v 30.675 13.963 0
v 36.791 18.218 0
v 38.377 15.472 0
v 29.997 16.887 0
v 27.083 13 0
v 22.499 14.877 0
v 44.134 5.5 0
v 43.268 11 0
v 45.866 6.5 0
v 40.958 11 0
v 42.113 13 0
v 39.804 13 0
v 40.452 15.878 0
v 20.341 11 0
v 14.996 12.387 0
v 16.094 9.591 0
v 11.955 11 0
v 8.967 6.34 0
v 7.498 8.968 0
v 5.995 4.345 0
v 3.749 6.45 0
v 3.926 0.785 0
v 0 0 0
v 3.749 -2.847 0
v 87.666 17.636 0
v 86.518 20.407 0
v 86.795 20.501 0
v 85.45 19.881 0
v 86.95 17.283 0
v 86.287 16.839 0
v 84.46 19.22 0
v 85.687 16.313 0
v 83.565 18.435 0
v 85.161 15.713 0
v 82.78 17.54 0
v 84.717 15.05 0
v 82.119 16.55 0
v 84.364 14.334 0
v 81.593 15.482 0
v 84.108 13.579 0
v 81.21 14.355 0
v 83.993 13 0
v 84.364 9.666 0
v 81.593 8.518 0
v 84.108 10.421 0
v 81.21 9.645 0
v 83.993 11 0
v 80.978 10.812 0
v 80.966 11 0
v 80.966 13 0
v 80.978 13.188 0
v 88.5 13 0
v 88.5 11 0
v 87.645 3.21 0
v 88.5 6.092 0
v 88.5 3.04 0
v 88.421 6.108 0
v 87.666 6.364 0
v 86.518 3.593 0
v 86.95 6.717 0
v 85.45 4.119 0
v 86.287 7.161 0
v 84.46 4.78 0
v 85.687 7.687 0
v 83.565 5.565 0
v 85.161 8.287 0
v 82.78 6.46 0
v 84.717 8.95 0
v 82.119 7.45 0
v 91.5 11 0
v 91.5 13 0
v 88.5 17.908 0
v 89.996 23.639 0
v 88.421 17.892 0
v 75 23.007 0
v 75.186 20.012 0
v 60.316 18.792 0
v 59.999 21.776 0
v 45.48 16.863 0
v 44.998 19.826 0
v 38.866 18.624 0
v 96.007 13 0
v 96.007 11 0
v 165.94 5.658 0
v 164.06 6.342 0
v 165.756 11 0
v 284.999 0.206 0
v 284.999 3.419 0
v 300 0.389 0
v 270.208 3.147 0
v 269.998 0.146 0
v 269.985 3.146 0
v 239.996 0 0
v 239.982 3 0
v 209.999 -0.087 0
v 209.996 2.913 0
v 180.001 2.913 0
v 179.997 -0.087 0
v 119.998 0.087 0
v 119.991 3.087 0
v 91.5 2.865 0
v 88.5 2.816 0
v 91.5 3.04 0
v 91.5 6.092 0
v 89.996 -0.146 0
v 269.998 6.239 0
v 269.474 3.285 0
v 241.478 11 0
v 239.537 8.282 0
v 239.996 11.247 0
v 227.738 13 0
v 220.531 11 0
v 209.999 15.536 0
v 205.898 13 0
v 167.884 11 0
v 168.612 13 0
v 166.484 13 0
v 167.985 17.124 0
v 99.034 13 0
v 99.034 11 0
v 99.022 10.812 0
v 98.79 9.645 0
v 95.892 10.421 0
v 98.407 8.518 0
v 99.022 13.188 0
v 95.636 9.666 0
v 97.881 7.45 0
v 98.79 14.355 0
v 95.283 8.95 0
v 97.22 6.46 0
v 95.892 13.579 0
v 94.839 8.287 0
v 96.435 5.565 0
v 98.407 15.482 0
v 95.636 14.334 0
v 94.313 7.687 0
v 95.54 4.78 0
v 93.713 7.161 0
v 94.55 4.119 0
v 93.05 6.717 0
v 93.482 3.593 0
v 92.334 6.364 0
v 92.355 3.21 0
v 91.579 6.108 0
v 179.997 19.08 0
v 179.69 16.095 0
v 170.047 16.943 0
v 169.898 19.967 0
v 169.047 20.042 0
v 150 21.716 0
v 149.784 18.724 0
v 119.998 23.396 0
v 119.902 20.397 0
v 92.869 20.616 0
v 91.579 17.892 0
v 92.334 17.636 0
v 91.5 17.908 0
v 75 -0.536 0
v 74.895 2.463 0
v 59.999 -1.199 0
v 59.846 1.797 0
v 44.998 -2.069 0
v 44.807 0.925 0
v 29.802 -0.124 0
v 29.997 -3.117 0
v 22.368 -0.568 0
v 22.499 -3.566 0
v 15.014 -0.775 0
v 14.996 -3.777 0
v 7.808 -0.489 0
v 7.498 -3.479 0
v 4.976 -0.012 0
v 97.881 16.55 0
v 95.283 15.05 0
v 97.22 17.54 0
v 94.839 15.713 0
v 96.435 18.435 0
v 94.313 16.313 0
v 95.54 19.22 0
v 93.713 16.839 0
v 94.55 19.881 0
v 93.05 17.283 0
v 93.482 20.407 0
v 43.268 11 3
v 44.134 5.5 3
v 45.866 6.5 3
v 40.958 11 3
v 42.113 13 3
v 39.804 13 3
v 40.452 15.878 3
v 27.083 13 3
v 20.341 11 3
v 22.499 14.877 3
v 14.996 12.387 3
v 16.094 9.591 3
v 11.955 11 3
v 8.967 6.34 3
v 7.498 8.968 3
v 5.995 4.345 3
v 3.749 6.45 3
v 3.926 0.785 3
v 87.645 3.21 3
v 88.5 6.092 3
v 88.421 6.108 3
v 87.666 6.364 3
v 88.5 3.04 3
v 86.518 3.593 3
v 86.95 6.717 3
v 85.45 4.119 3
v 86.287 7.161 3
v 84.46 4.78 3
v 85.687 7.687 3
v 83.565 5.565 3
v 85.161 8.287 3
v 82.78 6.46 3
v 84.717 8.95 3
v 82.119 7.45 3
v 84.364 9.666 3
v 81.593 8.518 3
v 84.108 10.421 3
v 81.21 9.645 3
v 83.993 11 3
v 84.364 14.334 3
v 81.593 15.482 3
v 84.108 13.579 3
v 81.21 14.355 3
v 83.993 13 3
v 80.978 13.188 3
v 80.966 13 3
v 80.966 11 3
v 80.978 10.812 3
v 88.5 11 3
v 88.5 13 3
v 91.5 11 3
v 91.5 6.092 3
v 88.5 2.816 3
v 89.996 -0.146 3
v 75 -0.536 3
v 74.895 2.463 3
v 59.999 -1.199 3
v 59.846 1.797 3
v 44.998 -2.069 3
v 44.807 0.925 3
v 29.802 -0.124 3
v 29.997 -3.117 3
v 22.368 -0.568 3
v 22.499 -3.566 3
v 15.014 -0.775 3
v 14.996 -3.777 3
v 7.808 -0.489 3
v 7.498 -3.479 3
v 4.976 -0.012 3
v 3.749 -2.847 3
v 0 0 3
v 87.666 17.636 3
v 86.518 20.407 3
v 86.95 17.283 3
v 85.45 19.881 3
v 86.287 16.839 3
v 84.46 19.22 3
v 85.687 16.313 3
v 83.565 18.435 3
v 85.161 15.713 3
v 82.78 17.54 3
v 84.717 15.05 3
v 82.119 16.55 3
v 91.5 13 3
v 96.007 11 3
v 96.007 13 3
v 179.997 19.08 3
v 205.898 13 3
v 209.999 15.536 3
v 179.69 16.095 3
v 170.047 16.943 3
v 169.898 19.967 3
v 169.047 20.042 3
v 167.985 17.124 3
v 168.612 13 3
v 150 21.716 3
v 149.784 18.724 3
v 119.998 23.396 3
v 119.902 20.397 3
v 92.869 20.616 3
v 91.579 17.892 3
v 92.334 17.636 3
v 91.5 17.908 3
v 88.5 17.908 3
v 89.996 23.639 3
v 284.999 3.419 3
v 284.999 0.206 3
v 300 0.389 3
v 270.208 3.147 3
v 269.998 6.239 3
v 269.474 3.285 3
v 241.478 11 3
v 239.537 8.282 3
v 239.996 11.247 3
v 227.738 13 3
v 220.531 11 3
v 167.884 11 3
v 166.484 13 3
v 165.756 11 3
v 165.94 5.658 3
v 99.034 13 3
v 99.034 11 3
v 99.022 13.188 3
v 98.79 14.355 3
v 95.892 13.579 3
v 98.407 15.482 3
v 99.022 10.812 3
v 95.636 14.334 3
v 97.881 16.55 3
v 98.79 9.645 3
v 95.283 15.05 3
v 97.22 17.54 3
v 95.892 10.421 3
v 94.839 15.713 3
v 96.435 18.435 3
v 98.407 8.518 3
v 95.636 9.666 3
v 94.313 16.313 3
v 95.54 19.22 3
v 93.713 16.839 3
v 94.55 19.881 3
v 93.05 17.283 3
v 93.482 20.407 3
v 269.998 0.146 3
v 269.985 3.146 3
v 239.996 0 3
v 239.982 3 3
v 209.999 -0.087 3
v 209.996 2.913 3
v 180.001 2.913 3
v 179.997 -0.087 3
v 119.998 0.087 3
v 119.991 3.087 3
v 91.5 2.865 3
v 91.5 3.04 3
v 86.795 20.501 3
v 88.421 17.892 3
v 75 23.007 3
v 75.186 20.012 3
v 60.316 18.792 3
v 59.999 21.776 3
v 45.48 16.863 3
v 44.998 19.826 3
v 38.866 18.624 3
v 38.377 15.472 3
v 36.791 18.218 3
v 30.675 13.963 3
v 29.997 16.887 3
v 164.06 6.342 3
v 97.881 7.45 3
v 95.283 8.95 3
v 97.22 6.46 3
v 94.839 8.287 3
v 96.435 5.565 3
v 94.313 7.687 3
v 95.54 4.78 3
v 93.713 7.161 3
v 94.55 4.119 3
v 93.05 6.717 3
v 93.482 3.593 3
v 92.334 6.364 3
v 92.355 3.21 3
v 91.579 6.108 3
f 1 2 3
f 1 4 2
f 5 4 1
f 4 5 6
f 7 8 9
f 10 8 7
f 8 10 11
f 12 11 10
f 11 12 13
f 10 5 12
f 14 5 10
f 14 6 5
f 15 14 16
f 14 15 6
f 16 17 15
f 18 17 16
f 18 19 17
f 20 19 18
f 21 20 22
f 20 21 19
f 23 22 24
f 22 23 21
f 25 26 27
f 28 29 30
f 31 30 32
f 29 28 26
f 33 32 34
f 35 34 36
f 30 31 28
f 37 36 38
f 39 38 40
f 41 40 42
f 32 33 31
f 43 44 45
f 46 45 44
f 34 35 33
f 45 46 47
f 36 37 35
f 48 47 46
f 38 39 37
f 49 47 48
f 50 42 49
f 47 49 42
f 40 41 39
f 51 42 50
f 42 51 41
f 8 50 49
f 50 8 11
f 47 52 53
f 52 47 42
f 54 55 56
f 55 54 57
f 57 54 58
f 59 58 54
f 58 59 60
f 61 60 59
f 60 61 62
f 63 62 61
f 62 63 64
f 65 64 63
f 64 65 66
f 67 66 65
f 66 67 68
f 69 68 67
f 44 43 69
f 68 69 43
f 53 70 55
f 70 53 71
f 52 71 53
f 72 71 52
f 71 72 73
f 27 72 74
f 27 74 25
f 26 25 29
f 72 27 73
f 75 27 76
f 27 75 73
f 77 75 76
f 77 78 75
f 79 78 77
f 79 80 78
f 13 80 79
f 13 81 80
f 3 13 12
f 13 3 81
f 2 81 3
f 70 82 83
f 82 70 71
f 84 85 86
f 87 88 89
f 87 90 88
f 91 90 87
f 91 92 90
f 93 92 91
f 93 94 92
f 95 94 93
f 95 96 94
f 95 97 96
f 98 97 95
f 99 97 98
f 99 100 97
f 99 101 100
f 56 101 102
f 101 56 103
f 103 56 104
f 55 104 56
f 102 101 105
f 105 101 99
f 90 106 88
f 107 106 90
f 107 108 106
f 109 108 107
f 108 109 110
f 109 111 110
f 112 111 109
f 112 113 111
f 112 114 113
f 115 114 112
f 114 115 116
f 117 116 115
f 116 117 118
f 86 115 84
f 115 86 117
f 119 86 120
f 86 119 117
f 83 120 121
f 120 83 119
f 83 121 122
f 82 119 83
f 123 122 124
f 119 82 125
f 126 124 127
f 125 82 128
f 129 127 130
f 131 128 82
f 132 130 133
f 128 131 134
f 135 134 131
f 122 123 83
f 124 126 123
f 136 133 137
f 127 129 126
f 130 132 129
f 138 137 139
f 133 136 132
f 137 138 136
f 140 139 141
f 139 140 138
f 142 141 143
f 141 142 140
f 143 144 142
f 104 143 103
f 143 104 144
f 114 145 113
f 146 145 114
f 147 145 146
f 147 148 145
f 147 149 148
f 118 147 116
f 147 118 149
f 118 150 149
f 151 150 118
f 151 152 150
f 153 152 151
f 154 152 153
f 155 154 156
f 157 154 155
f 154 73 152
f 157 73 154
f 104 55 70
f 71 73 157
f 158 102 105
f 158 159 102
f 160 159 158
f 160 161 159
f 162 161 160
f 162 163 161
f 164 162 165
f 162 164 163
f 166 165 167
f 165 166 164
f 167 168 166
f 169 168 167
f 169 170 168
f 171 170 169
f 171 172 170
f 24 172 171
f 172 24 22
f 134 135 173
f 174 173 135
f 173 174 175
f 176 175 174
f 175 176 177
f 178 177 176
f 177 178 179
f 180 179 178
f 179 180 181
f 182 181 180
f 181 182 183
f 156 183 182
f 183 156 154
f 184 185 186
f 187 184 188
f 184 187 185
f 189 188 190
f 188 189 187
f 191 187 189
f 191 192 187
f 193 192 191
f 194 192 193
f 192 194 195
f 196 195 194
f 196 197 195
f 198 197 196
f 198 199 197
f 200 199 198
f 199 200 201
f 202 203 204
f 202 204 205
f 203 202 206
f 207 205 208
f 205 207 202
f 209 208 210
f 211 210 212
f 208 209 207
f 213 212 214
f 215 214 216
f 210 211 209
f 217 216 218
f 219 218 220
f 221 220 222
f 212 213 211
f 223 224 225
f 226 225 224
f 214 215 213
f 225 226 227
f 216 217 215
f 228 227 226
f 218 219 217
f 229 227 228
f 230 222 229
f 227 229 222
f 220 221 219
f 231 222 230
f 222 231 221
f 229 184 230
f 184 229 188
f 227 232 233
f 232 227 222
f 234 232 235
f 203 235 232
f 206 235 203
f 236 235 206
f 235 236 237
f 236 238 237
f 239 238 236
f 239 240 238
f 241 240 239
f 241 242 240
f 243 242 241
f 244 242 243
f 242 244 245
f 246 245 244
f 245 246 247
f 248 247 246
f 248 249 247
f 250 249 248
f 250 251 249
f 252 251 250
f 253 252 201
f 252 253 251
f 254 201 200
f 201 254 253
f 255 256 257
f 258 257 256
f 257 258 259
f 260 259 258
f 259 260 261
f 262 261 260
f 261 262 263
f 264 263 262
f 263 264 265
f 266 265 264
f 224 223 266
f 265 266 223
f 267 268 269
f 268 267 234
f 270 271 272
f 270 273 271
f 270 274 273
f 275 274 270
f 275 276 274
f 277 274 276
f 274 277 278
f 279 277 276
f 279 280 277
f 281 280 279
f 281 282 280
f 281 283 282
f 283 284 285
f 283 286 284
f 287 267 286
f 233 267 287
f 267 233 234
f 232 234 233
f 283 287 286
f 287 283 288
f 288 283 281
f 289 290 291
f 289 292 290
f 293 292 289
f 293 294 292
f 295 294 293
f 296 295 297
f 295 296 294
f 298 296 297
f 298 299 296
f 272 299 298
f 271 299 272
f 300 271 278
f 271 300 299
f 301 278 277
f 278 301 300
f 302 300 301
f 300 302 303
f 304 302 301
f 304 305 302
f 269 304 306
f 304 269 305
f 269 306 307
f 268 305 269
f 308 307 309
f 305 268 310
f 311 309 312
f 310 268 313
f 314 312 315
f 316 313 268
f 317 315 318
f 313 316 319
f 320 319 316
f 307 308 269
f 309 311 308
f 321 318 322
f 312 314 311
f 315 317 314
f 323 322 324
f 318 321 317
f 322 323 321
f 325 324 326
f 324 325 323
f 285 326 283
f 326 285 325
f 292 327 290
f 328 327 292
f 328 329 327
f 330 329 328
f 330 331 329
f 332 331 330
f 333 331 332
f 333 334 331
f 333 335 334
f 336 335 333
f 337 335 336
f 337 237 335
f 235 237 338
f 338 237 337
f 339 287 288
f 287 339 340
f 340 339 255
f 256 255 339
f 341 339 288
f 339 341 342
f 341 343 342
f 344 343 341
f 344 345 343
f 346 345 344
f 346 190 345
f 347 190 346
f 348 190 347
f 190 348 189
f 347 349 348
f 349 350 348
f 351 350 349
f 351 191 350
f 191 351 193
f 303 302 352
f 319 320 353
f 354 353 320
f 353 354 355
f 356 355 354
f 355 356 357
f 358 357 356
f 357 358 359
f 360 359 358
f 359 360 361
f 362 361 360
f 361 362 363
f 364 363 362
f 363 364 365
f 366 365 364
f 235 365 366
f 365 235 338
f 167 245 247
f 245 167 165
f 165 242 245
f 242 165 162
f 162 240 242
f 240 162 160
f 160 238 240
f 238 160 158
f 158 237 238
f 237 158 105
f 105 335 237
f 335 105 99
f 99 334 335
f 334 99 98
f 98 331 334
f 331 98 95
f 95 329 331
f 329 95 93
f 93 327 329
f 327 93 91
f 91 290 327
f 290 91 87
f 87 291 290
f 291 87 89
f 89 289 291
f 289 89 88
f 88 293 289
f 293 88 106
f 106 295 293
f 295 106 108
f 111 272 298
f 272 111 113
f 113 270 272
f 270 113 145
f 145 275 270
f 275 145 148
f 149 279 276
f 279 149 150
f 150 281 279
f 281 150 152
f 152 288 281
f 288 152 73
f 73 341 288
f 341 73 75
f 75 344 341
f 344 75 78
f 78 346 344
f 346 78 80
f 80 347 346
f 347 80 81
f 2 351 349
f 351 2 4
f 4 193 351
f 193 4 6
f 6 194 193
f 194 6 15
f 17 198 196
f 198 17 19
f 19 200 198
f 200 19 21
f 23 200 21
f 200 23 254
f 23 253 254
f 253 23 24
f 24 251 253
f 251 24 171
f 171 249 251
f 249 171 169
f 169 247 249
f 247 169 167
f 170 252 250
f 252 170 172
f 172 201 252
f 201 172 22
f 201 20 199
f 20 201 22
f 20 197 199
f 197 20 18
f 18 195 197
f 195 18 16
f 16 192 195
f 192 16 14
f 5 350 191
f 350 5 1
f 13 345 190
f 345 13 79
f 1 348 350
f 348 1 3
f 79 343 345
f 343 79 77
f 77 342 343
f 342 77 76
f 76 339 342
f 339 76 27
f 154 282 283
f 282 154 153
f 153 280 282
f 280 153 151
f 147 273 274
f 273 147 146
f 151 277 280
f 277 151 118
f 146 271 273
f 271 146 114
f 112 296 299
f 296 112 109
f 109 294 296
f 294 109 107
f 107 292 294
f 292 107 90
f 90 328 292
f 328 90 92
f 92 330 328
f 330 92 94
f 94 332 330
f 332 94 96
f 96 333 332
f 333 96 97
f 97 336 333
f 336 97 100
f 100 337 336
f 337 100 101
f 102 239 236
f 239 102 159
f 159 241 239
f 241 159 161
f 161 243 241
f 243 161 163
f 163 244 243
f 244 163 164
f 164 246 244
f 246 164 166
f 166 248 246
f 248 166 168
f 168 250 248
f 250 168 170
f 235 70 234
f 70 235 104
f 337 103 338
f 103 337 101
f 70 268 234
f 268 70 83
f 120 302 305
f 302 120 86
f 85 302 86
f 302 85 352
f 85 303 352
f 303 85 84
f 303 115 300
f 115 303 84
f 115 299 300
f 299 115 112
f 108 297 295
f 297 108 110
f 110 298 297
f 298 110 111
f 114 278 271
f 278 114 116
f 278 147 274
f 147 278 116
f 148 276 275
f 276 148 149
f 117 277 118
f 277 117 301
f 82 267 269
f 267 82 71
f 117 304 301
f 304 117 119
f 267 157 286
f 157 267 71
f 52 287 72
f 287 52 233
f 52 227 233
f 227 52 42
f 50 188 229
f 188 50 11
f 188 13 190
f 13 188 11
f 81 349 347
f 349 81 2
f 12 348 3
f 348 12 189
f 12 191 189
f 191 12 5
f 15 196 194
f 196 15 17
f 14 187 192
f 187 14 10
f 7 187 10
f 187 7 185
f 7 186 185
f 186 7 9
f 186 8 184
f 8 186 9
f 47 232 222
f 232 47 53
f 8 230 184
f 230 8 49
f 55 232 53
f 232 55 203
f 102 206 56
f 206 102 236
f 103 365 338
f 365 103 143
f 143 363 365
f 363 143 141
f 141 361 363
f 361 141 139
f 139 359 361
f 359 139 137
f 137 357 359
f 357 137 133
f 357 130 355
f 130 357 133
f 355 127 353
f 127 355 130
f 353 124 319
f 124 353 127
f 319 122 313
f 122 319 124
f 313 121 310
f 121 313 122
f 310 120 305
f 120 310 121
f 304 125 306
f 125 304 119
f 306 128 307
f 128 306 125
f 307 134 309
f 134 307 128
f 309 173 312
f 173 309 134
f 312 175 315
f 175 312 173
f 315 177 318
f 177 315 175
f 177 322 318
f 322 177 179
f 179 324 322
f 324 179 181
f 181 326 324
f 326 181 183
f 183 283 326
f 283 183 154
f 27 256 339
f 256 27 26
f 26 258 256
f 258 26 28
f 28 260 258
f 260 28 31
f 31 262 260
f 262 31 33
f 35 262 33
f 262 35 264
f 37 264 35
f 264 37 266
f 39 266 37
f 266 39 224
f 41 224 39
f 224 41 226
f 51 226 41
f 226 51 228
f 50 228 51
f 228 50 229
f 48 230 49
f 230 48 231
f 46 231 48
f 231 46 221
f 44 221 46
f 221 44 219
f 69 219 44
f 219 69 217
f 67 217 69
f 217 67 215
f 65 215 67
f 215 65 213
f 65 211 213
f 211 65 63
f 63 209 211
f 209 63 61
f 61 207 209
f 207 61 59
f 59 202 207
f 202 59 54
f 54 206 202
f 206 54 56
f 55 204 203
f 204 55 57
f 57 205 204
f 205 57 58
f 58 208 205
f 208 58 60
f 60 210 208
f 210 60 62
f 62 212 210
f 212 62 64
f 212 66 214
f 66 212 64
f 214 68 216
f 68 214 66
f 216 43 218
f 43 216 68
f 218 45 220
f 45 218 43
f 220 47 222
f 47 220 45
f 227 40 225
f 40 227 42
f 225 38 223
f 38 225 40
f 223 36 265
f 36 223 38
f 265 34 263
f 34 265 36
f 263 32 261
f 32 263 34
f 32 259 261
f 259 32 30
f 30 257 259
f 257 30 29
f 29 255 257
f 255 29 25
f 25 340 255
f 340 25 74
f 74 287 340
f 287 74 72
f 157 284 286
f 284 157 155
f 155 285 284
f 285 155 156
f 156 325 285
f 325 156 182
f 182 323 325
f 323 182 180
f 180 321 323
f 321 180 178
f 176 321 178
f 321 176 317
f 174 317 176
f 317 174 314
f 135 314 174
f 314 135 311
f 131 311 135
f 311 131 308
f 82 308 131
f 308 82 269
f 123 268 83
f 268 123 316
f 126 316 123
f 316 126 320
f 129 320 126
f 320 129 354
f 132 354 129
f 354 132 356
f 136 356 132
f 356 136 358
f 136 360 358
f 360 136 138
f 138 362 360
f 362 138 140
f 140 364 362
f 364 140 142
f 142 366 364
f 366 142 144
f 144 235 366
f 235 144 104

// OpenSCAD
// file: ../../lib/profiles.scad
// Knihovna leteckych profilu pro RC letadlo
// Vsechny rozmery v milimetrech

// Clark-Y profil (zjednoduseny) - pro kridlo
// Vraci 2D polygon profilu normalizovany na hloubku 1
function clark_y_upper() = [
    [1.000, 0.0013],
    [0.950, 0.0114],
    [0.900, 0.0208],
    [0.800, 0.0375],
    [0.700, 0.0518],
    [0.600, 0.0636],
    [0.500, 0.0724],
    [0.400, 0.0780],
    [0.300, 0.0788],
    [0.250, 0.0767],
    [0.200, 0.0726],
    [0.150, 0.0661],
    [0.100, 0.0563],
    [0.075, 0.0496],
    [0.050, 0.0413],
    [0.025, 0.0299],
    [0.0125,0.0215],
    [0.000, 0.0000]
];

function clark_y_lower() = [
    [0.000, 0.0000],
    [0.0125,-0.0095],
    [0.025, -0.0116],
    [0.050, -0.0126],
    [0.075, -0.0119],
    [0.100, -0.0104],
    [0.150, -0.0069],
    [0.200, -0.0040],
    [0.250, -0.0018],
    [0.300, -0.0005],
    [0.400, 0.0003],
    [0.500, 0.0000],
    [0.600, -0.0003],
    [0.700, -0.0003],
    [0.800, 0.0000],
    [0.900, 0.0005],
    [0.950, 0.0007],
    [1.000, 0.0013]
];

function clark_y_points() = concat(clark_y_upper(), clark_y_lower());

module clark_y_profile(chord) {
    pts = concat(clark_y_upper(), clark_y_lower());
    scale([chord, chord, 1])
        polygon([for (p = pts) [p[0], p[1]]]);
}

// NACA 0009 symetricky profil - pro ocasni plochy
function naca0009_half() = [
    [0.000, 0.0000],
    [0.0125, 0.0112],
    [0.025, 0.0155],
    [0.050, 0.0212],
    [0.075, 0.0253],
    [0.100, 0.0283],
    [0.150, 0.0326],
    [0.200, 0.0350],
    [0.250, 0.0361],
    [0.300, 0.0362],
    [0.400, 0.0341],
    [0.500, 0.0298],
    [0.600, 0.0241],
    [0.700, 0.0177],
    [0.800, 0.0112],
    [0.900, 0.0053],
    [0.950, 0.0027],
    [1.000, 0.0005]
];

module naca0009_profile(chord) {
    upper = naca0009_half();
    lower = [for (i = [len(upper)-1:-1:0]) [upper[i][0], -upper[i][1]]];
    pts = concat(upper, [for (i = [1:len(lower)-1]) lower[i]]);
    scale([chord, chord, 1])
        polygon([for (p = pts) [p[0], p[1]]]);
}

// Ovalny prurezu trupu
module oval_profile(width, height) {
    scale([width/2, height/2])
        circle(r=1, $fn=64);
}

// Zaobleny obdelnik
module rounded_rect(w, h, r) {
    offset(r=r)
        square([w - 2*r, h - 2*r], center=true);
}
// main file
// Zebro korenove - nejvetsi zebro kridla
// Clark-Y profil, hloubka 300mm
// Material: PET-G, 20% vypln, 3 perimetry

use <../../lib/profiles.scad>;

$fn = 48;

hloubka = 300;
tl_zebra = 3;
tl_stena = 3;
nosnik_prumer = 12.2;
pozice_nosnik = 0.30;

module zebro_korenove() {
    linear_extrude(tl_zebra)
        difference() {
            // Obrys profilu
            clark_y_profile(hloubka);

            // Vnitrni odlehceni
            offset(delta=-tl_stena)
                clark_y_profile(hloubka);

            // Otvor pro hlavni nosnik o12mm
            translate([hloubka * pozice_nosnik, hloubka * 0.04])
                circle(d=nosnik_prumer);
        }

    // Pridat zpet vyztuzne premosteni (vzpery)
    linear_extrude(tl_zebra)
        intersection() {
            clark_y_profile(hloubka);
            union() {
                // Vertikalni vzpera u nosnikku
                translate([hloubka * pozice_nosnik - 1.5, -5])
                    square([3, hloubka * 0.12]);
                // Sikme vzpery
                translate([hloubka * 0.15, hloubka * 0.02])
                    rotate(30)
                        translate([-1, 0])
                            square([2, hloubka * 0.08]);
                translate([hloubka * 0.55, hloubka * 0.02])
                    rotate(-20)
                        translate([-1, 0])
                            square([2, hloubka * 0.06]);
                // Horizontalni vzpera - tvorici nosnik
                translate([0, hloubka * 0.04 - 1])
                    square([hloubka, 2]);
            }
        }

    // Zesílený límec kolem otvoru pro nosník
    linear_extrude(tl_zebra)
        translate([hloubka * pozice_nosnik, hloubka * 0.04])
            difference() {
                circle(d=nosnik_prumer + 6);
                circle(d=nosnik_prumer);
            }
}

zebro_korenove();
